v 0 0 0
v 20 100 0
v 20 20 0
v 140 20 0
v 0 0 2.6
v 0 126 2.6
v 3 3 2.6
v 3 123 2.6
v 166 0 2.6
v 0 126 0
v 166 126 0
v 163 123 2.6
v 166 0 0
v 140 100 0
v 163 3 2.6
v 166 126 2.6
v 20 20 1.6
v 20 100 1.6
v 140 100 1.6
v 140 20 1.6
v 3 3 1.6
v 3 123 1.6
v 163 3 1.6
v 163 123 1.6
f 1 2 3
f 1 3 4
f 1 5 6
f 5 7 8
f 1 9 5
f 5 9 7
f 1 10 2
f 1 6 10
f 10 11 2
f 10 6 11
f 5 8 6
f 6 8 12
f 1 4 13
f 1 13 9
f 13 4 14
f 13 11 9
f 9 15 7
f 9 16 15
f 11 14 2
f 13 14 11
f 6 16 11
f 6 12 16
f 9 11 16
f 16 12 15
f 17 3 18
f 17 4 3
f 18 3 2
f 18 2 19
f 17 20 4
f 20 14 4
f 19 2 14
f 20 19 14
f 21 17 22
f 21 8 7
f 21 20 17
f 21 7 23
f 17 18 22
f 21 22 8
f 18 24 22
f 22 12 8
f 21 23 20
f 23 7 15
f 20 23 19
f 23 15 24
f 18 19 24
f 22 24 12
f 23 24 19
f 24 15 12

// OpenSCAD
epsilon = 0.001;

board_thickness = 1.6;
stencil_dims = [160, 120, 1];
inner_dims = [120, 80];
outside = 3;
//inside_lip = 10;

module stencil_frame() {
  frame_dims = stencil_dims + [2*outside, 2*outside, board_thickness];
  
  difference() {
    // Frame body
    cube(frame_dims);
    // Cutout for board
    translate([(stencil_dims[0]-inner_dims[0])/2, (stencil_dims[1]-inner_dims[1])/2, -epsilon])
      cube([inner_dims[0], inner_dims[1], frame_dims[2] + 1]);

    // Cutout for stencil
    translate([outside, outside,board_thickness]) {
      cube([frame_dims[0]-2*outside, frame_dims[1]-2*outside, frame_dims[2]+1]);
    }
  }
}

stencil_frame();
